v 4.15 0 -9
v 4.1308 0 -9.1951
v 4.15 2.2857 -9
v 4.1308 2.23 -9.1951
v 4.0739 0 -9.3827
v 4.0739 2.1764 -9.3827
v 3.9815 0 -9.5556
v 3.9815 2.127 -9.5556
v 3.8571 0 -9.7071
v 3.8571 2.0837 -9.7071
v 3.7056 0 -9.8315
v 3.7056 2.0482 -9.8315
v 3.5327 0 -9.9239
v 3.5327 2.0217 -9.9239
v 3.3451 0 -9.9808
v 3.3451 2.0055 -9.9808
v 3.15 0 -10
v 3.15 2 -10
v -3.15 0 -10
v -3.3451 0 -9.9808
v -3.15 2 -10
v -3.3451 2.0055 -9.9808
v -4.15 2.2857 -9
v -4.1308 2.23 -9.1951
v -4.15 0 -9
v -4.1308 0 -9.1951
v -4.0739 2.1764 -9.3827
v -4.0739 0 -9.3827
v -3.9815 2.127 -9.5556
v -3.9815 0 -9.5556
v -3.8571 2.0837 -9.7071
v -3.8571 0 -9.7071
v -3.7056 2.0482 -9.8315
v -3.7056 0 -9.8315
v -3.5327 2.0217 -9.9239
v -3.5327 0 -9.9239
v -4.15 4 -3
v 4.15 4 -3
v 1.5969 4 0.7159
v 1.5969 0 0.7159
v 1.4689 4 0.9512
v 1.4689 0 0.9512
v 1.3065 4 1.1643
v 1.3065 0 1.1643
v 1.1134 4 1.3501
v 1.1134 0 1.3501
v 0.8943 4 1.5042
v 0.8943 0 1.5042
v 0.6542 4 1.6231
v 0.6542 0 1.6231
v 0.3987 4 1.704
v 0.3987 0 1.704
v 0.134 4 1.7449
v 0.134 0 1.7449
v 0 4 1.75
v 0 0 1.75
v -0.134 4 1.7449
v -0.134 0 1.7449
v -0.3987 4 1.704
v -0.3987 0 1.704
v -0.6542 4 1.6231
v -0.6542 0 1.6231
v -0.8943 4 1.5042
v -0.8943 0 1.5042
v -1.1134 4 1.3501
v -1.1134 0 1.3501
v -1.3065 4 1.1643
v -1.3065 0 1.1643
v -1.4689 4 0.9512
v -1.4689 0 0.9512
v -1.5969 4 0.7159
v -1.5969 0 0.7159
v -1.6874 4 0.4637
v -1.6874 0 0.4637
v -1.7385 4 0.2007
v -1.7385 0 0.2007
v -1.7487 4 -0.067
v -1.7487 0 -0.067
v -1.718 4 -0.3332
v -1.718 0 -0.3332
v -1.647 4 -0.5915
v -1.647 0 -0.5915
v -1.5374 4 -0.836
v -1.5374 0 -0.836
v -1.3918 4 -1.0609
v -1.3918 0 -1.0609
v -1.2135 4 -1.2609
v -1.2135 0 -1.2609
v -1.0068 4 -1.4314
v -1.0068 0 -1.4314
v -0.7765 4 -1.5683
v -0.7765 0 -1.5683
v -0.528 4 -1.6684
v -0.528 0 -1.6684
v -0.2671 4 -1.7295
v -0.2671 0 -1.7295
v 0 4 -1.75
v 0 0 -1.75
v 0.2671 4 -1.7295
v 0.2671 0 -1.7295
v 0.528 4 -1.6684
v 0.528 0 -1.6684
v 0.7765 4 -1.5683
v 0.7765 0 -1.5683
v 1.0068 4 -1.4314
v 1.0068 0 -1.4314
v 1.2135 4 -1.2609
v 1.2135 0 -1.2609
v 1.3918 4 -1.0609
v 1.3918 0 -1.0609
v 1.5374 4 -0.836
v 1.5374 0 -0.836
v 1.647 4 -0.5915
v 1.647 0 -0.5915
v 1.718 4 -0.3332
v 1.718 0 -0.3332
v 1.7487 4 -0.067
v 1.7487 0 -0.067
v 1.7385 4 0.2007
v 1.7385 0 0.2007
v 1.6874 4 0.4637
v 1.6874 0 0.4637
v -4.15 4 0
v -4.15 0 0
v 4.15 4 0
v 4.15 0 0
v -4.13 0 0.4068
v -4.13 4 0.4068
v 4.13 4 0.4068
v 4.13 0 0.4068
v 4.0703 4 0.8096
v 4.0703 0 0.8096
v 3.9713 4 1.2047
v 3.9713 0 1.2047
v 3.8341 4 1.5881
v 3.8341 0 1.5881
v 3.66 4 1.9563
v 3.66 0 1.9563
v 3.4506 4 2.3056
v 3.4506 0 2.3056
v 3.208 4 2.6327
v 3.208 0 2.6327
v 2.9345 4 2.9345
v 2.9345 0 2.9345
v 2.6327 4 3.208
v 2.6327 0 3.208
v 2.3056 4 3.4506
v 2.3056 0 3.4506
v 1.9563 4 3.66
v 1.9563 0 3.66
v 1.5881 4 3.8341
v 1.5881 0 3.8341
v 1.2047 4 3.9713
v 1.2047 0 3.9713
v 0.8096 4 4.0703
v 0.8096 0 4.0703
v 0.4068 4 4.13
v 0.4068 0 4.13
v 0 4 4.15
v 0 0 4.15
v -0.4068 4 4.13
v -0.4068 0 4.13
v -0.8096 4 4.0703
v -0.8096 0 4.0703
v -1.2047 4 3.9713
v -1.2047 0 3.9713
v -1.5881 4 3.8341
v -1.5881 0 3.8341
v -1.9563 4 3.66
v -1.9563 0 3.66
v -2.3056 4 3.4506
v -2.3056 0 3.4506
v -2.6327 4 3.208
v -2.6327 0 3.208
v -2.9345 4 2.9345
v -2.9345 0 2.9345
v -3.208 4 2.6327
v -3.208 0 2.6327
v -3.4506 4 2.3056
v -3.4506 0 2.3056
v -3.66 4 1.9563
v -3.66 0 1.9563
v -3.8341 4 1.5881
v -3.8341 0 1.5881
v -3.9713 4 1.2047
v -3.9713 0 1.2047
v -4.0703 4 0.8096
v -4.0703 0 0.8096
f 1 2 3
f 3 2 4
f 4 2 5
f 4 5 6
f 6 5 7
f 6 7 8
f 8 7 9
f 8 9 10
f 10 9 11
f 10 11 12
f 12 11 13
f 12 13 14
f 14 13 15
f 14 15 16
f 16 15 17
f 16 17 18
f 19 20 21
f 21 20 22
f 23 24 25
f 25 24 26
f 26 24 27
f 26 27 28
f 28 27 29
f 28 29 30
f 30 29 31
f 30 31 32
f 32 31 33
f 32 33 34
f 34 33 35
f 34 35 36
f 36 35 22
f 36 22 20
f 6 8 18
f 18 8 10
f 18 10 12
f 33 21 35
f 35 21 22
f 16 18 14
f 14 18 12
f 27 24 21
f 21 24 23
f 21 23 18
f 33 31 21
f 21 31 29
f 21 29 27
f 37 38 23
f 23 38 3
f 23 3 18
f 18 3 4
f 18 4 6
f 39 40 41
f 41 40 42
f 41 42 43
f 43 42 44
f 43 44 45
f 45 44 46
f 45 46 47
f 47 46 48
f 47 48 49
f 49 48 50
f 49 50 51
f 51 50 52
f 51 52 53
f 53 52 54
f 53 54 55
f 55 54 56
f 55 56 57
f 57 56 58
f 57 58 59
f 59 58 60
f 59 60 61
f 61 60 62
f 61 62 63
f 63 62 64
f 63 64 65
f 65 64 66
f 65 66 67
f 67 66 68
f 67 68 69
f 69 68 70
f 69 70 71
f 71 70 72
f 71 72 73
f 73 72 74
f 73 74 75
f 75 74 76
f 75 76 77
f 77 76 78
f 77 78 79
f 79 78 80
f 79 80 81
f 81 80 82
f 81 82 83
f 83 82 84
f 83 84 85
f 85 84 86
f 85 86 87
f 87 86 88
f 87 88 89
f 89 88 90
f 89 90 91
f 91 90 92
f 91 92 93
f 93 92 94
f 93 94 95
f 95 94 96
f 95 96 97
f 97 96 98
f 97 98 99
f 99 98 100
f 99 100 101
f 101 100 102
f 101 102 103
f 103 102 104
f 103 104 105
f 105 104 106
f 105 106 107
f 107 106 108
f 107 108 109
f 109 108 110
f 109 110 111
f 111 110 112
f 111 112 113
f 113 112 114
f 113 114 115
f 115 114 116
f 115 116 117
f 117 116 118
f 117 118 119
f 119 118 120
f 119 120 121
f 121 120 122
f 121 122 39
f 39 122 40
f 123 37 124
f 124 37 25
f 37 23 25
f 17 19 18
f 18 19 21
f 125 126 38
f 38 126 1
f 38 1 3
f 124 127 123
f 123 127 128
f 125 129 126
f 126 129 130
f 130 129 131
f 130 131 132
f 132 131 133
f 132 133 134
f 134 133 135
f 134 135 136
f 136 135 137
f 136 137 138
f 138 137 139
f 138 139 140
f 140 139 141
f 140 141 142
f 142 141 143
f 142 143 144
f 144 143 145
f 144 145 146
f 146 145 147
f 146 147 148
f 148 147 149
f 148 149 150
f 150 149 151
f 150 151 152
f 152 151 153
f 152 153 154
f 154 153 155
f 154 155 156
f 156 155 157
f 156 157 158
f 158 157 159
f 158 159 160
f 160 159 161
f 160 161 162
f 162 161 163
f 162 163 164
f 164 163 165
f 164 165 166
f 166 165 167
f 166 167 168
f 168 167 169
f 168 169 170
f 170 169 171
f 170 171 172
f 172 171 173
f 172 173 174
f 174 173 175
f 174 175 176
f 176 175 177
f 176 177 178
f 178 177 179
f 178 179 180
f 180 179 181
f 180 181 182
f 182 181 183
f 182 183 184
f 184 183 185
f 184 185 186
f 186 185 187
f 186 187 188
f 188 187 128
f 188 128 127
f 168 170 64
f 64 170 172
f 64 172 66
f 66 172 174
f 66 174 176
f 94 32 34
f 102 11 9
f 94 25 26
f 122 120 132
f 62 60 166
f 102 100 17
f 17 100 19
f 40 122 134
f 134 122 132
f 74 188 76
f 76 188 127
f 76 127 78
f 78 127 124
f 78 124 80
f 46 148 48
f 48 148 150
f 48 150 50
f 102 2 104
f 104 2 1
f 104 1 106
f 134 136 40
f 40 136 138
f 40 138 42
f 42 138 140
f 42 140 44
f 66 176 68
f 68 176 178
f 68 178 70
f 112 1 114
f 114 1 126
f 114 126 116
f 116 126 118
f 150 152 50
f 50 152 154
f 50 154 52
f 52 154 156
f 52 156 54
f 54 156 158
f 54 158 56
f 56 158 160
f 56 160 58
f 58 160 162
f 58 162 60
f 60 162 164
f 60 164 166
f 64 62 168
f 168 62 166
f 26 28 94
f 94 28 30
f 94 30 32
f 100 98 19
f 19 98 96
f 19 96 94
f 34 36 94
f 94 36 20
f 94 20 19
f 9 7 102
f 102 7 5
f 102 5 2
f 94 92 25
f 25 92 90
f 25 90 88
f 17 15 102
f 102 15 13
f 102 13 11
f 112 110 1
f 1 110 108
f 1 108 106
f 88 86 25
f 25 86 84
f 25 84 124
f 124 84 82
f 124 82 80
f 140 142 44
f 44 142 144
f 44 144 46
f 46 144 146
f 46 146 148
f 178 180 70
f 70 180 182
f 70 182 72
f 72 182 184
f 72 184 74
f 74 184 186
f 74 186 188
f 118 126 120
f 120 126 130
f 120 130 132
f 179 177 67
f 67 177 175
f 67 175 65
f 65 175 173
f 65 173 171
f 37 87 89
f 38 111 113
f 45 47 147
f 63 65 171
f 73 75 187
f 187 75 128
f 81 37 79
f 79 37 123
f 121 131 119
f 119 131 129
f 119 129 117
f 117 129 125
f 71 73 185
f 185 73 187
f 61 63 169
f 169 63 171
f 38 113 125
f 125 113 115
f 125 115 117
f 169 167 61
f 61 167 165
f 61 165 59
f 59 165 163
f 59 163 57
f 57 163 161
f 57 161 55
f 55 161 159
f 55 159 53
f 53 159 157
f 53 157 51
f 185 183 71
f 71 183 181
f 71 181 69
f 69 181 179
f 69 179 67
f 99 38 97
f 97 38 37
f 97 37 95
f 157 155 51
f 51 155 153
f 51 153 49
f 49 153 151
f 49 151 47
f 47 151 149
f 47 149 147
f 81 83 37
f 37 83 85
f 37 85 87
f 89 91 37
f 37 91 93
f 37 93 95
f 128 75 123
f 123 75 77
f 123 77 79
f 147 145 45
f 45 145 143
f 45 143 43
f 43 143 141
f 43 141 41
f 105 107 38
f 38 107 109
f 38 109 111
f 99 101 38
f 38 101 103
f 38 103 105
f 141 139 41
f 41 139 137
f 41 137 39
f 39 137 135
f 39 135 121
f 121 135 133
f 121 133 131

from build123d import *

# Parameters (mm, degrees)
SCHIZZO1_R                   = 1.75
ESTRUSIONE_ESTRUSIONE1_DEPTH = 4
TAGLIO_ESTRUSIONE1_DEPTH     = 14.597426227
RACCORDO1_R                  = 1


with BuildPart() as part:
    # Schizzo1 → Estrusione-Estrusione1 (new body)
    with BuildSketch(Plane(origin=(0, 0, 0), x_dir=(1, 0, 0), z_dir=(0, 1, 0))):
        with BuildLine():
            Line((-4.15, 0), (-4.15, 10))
            Line((-4.15, 10), (4.15, 10))
            Line((4.15, 10), (4.15, 0))
            ThreePointArc((4.15, 0), (0, -4.15), (-4.15, 0))
        make_face()
        with Locations(Location((0, 0, 0), (0, 0, 270))):
            Circle(SCHIZZO1_R, mode=Mode.SUBTRACT)
    extrude(amount=ESTRUSIONE_ESTRUSIONE1_DEPTH)

    # Schizzo2 → Taglio-Estrusione1 (cut, through all)
    with BuildSketch(Plane(origin=(4.15, 0, 0), x_dir=(0, 0, -1), z_dir=(1, 0, 0))):
        Polygon((10, 2), (10, 4), (3, 4), align=None)
    extrude(amount=-TAGLIO_ESTRUSIONE1_DEPTH, mode=Mode.SUBTRACT)

    # Raccordo1
    raccordo1_edges = [part.edges().sort_by_distance(p)[0] for p in [
        (-4.15, 1, -10),
        (4.15, 1, -10),
    ]]
    fillet(raccordo1_edges, radius=RACCORDO1_R)


solid = part.part
